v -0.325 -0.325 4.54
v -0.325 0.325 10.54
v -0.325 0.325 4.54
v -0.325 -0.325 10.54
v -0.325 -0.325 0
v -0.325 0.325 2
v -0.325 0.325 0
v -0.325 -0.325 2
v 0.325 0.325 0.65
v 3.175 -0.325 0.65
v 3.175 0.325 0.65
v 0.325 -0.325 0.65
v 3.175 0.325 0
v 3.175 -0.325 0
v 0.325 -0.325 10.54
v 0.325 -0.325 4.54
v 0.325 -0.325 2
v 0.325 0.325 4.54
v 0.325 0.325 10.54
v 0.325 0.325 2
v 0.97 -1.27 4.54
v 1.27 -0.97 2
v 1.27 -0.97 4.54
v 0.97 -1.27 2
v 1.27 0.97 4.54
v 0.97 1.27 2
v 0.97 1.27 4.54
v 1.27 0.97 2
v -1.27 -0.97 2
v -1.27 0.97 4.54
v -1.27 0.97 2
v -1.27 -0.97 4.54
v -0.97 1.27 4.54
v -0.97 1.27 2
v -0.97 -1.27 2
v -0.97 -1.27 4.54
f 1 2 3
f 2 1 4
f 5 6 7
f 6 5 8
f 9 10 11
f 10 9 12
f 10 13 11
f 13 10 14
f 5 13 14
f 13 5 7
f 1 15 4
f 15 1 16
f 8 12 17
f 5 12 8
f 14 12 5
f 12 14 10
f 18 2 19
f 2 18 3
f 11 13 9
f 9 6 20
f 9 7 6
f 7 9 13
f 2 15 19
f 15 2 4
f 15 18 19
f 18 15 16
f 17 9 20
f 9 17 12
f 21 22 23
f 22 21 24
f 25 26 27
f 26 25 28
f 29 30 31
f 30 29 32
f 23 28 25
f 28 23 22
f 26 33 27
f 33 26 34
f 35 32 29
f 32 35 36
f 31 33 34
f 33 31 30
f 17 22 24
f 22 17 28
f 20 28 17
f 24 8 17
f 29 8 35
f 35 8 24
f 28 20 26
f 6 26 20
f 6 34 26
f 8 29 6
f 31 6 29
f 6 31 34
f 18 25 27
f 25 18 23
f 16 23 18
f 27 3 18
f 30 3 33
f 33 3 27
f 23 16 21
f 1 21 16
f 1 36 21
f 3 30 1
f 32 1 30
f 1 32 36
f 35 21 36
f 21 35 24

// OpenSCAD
translate([0,0,2])
union()
{
	translate([-0.325,-0.325,-2])
		cube([3.5,0.65,0.65]);
	translate([-0.325,-0.325,-2])
		cube([0.65,0.65,10.54]);
    linear_extrude(2.54)
        polygon(points=[[-0.97,-1.27],[0.97,-1.27],[1.27,-0.97],[1.27,0.97],[0.97,1.27],[-0.97,1.27],[-1.27,0.97],[-1.27,-0.97]], paths=[[0,1,2,3,4,5,6,7]]);
}
